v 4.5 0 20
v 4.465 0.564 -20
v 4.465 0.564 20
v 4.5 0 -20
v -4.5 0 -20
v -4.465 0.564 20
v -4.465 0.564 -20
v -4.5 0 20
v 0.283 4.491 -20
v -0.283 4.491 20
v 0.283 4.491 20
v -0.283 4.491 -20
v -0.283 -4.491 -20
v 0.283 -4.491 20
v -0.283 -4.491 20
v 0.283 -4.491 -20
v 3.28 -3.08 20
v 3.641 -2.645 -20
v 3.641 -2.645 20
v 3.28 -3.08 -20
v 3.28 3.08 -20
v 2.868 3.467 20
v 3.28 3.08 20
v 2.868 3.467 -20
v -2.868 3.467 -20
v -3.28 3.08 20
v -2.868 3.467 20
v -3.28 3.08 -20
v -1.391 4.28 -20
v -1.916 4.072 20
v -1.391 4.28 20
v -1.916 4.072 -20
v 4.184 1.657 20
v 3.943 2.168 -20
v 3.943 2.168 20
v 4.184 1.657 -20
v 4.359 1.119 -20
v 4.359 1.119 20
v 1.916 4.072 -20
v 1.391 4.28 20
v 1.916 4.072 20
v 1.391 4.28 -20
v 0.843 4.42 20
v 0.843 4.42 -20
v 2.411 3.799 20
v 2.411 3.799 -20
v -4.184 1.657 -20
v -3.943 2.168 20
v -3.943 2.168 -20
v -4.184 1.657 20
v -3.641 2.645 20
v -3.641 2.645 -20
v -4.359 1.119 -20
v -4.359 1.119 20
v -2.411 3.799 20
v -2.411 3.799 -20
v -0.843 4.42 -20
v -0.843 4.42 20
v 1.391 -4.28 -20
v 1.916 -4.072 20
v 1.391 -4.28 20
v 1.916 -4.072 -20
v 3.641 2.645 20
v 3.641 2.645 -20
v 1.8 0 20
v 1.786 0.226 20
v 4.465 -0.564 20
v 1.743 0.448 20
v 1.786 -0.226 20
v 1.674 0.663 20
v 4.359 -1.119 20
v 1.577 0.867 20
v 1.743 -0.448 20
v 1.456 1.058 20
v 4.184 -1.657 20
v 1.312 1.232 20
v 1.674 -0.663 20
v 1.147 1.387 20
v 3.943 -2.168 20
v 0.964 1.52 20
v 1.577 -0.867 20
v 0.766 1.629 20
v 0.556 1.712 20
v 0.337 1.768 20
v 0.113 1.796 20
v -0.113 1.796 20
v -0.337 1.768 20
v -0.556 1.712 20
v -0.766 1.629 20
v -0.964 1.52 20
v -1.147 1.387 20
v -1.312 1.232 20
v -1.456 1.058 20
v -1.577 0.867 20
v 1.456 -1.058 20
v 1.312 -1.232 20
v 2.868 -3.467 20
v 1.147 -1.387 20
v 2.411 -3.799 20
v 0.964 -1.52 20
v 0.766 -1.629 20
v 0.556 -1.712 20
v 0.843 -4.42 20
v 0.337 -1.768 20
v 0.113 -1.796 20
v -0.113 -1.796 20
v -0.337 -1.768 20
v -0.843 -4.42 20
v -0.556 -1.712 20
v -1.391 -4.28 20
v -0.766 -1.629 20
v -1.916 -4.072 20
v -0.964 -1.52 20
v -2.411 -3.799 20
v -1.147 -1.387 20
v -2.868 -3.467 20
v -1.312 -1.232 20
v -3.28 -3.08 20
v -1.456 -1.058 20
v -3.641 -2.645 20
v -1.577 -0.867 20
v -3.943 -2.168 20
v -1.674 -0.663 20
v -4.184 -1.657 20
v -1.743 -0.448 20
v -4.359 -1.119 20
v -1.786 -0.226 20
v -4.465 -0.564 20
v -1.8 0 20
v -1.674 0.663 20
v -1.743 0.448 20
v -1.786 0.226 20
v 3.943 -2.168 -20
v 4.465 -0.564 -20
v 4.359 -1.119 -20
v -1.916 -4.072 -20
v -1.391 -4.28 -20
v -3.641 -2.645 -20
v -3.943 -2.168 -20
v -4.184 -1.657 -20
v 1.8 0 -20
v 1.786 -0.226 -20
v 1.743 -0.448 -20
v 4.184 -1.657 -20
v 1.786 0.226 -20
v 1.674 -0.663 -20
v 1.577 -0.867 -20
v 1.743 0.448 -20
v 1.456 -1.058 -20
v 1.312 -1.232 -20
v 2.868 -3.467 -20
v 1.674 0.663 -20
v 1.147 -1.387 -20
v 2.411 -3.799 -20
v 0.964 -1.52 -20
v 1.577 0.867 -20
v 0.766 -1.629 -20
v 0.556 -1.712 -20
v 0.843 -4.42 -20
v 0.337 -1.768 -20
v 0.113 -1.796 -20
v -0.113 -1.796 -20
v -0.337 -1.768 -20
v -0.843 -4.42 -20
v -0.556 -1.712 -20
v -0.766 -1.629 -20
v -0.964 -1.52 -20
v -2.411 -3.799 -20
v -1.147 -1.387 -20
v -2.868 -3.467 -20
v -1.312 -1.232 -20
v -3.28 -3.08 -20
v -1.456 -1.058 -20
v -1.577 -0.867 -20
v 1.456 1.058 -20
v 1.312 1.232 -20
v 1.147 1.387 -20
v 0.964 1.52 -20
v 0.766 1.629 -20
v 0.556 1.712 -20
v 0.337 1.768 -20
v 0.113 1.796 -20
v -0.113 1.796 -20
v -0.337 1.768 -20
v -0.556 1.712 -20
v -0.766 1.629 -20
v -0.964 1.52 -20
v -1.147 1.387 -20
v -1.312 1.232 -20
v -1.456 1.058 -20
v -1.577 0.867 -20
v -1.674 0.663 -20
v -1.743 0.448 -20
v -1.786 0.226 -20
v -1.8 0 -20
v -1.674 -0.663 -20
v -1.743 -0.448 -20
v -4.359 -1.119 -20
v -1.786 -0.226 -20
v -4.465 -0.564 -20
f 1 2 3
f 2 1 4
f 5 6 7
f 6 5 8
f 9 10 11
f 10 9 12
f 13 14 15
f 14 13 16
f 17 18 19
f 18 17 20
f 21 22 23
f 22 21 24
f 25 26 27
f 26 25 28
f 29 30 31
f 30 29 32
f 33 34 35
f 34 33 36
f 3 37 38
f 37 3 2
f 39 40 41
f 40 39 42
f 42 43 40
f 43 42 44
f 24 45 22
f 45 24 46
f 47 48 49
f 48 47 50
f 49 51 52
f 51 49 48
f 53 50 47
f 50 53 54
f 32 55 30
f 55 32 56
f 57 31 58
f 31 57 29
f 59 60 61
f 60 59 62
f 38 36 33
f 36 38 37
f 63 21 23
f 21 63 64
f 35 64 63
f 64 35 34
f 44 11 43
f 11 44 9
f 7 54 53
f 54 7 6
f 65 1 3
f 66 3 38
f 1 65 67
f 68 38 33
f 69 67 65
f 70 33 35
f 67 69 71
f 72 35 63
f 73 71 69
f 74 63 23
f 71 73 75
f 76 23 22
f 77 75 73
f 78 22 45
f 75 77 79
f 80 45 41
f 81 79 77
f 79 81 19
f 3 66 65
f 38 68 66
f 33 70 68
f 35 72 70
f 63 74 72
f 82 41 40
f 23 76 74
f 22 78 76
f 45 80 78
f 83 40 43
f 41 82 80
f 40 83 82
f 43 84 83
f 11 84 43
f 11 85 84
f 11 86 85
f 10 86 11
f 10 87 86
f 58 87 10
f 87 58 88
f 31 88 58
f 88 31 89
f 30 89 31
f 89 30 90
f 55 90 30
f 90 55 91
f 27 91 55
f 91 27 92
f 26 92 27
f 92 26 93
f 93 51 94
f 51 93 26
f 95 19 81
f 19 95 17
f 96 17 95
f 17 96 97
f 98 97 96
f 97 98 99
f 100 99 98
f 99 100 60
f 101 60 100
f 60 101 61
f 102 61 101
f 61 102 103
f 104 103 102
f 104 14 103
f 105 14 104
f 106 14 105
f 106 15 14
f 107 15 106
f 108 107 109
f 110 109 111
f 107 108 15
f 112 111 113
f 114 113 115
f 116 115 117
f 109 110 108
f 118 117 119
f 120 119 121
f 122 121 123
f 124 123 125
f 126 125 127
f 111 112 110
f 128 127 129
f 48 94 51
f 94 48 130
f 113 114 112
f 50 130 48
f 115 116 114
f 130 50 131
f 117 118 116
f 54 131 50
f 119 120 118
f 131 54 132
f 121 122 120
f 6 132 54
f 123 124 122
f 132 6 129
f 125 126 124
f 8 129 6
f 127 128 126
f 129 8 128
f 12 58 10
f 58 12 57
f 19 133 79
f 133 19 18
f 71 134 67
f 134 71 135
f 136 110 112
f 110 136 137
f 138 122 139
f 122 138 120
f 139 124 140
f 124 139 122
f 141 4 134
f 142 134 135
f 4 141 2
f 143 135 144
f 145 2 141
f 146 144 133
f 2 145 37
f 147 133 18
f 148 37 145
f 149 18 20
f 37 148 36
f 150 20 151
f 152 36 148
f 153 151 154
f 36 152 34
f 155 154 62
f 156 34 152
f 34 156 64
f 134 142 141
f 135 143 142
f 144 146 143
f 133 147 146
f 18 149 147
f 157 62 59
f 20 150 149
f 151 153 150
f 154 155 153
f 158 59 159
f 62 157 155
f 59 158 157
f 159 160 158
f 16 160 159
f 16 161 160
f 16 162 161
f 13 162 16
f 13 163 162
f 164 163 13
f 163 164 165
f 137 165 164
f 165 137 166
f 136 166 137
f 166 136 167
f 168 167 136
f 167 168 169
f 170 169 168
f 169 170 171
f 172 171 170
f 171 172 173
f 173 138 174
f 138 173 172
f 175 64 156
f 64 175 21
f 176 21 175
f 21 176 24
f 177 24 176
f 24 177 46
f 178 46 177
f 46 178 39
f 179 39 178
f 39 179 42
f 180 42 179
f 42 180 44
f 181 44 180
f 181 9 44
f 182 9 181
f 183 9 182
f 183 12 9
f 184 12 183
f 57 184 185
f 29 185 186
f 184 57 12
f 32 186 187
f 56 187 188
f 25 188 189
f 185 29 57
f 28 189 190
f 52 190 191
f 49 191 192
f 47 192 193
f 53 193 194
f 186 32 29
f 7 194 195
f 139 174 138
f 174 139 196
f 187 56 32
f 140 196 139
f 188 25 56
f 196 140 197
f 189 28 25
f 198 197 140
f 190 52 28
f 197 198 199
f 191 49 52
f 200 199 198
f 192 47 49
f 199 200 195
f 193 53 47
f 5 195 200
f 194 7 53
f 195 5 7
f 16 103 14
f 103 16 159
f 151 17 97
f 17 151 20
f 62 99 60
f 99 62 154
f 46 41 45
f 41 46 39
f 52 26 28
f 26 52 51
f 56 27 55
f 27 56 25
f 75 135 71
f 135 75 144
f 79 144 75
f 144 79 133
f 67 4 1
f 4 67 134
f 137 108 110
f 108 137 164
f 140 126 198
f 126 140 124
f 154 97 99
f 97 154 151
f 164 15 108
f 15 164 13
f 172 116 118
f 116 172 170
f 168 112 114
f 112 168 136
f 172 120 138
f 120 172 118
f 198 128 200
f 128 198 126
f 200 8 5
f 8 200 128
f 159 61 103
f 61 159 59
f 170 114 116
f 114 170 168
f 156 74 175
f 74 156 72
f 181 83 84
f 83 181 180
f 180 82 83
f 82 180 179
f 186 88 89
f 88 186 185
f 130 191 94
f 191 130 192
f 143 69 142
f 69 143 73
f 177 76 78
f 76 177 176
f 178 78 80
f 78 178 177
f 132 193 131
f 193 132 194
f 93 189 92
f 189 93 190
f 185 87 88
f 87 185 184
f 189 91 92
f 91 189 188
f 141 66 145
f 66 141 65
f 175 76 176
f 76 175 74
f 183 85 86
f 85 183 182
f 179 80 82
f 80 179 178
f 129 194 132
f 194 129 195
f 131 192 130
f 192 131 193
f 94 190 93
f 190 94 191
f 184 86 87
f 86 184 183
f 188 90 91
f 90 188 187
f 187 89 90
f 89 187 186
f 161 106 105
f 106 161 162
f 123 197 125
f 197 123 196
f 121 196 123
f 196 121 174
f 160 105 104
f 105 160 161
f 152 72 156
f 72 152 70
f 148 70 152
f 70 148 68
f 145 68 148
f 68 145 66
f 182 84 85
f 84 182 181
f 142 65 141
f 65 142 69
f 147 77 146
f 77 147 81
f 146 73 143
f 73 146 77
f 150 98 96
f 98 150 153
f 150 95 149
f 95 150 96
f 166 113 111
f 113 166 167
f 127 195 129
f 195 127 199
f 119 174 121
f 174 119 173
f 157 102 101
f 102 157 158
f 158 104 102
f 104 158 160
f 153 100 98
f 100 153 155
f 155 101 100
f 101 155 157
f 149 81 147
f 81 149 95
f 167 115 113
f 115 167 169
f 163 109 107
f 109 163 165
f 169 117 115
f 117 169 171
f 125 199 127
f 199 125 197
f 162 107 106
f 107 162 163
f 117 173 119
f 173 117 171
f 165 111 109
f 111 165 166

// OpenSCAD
$fn = 50;


difference() {
	union() {
		translate(v = [0, 0, -20.0000000000]) {
			cylinder(h = 40, r = 4.5000000000);
		}
	}
	union() {
		translate(v = [0, 0, -100.0000000000]) {
			cylinder(h = 200, r = 1.8000000000);
		}
	}
}
